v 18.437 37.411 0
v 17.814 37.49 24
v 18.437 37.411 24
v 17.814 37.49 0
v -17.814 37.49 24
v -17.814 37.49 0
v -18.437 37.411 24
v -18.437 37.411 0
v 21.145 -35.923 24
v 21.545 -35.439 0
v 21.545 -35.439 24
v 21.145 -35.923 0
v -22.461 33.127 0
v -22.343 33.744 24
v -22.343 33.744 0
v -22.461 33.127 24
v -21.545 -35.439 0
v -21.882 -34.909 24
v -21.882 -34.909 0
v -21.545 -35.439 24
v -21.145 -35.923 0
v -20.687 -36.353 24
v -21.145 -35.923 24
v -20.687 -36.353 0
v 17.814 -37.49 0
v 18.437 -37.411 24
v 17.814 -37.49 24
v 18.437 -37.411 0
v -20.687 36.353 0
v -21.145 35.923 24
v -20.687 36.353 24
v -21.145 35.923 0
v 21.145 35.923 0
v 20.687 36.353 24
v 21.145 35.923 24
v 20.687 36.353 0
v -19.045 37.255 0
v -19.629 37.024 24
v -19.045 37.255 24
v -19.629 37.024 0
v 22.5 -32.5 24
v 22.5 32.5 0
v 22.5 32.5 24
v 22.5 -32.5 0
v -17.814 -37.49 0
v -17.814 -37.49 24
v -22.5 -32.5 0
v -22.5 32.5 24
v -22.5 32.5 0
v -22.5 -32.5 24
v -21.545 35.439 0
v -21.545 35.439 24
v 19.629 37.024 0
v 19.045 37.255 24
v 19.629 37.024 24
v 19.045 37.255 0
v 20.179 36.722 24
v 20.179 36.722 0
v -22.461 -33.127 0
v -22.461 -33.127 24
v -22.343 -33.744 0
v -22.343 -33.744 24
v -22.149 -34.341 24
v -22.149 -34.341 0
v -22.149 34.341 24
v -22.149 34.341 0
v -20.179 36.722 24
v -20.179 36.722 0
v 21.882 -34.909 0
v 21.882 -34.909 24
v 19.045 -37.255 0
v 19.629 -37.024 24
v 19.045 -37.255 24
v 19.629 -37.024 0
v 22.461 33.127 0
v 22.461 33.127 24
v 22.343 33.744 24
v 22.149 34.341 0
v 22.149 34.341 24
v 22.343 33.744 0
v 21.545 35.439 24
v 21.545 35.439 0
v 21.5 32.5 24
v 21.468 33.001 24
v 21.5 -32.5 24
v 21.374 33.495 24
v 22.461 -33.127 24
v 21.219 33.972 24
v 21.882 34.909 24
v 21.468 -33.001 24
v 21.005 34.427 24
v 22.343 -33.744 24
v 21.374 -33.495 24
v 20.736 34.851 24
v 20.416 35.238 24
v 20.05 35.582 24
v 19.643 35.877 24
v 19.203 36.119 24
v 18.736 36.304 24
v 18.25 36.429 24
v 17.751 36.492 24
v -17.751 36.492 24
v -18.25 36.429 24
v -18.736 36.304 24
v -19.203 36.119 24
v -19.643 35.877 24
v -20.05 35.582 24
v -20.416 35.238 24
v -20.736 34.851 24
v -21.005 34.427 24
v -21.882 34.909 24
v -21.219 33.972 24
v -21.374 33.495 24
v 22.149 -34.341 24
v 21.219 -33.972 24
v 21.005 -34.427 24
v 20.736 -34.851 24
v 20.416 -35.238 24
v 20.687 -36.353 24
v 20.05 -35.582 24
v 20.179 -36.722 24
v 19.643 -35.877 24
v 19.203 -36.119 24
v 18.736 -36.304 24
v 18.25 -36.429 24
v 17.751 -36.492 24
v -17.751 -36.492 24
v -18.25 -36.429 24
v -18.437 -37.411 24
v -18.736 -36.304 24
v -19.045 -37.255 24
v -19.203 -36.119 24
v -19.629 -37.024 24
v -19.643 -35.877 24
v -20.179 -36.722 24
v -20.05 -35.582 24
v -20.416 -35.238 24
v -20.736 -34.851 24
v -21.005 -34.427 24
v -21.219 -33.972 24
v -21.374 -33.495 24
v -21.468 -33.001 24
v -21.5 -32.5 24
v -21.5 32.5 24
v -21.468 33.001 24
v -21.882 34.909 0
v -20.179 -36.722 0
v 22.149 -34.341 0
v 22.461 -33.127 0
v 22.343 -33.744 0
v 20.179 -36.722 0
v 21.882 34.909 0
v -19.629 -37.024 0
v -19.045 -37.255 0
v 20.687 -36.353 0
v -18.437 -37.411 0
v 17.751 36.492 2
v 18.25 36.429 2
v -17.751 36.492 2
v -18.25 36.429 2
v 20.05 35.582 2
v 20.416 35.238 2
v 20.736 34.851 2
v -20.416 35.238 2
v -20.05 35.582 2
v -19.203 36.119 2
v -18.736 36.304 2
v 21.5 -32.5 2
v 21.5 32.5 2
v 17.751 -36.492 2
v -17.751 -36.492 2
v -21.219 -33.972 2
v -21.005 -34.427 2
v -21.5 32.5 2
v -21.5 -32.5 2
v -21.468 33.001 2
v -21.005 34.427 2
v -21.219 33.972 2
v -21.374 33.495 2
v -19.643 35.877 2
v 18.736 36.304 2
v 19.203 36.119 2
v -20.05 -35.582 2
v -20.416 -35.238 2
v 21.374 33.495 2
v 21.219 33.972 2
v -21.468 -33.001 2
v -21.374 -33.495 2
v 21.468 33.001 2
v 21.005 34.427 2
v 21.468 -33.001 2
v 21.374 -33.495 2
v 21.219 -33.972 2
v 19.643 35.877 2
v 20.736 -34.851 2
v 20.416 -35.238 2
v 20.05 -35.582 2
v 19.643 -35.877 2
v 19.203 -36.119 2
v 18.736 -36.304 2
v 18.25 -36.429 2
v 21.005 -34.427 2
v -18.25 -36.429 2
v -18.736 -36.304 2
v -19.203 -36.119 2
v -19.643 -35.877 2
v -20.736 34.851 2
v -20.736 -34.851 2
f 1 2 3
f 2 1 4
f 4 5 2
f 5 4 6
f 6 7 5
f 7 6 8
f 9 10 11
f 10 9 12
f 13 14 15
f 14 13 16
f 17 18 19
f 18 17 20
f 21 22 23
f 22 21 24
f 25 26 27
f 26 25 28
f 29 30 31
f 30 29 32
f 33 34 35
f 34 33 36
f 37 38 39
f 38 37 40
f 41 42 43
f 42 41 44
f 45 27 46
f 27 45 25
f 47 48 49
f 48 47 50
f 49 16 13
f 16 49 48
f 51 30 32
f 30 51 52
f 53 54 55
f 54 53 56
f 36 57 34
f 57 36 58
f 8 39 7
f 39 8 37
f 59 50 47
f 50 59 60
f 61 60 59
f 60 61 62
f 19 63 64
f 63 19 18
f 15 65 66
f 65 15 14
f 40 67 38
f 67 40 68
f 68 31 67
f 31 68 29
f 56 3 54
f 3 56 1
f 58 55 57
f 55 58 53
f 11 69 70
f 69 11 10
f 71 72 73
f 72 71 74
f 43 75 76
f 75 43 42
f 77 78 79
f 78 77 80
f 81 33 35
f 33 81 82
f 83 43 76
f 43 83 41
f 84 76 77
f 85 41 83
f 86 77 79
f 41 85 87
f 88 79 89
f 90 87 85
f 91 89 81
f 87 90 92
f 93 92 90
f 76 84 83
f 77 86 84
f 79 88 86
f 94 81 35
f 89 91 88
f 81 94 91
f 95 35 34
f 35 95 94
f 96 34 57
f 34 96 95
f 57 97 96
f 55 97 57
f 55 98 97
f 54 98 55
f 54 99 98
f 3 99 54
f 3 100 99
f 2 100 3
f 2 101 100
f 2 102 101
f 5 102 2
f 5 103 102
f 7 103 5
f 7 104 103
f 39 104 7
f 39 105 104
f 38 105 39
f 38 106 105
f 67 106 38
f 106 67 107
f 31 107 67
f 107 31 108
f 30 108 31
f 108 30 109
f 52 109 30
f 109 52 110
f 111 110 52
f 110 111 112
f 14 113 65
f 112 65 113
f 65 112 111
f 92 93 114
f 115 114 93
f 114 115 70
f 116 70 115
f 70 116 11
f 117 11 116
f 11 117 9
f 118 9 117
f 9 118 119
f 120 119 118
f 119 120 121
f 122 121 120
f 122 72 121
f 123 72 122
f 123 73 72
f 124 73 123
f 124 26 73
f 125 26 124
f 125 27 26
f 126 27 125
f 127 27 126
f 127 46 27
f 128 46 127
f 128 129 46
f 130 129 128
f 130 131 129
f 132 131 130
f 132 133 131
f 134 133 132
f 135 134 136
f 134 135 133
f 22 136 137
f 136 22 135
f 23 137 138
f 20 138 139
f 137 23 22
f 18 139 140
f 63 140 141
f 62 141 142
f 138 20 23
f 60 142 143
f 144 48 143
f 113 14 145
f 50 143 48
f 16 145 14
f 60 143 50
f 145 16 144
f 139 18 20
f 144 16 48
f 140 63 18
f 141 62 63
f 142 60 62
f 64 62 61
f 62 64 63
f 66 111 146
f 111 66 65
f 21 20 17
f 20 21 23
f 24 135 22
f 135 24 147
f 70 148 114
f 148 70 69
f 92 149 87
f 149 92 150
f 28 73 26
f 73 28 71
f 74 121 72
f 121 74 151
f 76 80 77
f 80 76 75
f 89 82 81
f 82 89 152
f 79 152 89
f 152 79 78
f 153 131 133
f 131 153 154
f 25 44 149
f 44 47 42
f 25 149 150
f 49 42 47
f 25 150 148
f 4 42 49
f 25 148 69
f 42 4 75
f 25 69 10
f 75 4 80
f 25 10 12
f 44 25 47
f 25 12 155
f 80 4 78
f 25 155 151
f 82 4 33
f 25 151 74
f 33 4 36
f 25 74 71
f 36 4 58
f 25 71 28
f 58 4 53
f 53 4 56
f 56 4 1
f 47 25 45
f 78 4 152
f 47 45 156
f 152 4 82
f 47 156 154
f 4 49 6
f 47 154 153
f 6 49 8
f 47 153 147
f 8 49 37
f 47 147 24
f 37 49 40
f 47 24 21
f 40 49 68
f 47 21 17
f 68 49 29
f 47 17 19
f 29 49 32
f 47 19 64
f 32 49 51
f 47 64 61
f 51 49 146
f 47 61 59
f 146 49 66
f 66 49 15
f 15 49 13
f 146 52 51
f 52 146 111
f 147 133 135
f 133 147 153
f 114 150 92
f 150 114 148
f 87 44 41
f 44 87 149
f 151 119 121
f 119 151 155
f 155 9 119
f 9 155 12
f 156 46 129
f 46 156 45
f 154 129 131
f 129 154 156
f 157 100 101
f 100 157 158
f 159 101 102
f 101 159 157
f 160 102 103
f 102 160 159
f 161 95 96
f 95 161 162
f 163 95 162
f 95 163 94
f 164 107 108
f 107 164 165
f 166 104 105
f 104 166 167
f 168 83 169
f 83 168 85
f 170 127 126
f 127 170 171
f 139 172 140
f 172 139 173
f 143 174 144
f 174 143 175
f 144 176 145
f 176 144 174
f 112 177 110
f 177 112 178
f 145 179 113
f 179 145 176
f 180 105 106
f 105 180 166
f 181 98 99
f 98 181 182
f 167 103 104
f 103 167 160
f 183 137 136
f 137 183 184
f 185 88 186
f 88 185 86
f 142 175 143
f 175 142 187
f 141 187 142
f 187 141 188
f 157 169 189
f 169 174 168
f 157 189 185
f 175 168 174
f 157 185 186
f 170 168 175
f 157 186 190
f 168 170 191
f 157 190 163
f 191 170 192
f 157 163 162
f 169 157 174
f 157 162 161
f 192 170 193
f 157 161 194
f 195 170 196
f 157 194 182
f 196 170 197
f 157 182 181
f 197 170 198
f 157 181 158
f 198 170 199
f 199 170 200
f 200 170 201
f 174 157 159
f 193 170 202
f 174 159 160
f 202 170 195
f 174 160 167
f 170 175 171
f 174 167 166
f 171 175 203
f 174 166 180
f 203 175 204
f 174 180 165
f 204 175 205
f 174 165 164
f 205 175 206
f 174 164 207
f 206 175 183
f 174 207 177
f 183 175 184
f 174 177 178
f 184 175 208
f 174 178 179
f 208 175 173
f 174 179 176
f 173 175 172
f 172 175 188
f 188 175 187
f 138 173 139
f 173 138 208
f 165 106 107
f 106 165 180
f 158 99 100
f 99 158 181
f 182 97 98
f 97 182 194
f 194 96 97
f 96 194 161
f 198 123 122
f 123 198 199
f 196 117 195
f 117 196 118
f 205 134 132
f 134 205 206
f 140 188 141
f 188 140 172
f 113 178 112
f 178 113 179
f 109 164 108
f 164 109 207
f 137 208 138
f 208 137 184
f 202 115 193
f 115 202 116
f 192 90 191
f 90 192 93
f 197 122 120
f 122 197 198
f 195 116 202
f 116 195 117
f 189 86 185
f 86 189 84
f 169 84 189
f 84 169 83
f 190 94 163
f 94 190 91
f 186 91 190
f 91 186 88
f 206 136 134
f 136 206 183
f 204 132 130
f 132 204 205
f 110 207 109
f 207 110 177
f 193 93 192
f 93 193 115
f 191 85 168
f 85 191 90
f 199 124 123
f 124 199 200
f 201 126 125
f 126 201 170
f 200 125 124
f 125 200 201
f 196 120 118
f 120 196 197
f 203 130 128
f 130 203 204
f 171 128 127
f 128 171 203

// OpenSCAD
$fn = 50;


difference() {
	union() {
		hull() {
			translate(v = [-17.5000000000, 32.5000000000, 0]) {
				cylinder(h = 24, r = 5);
			}
			translate(v = [17.5000000000, 32.5000000000, 0]) {
				cylinder(h = 24, r = 5);
			}
			translate(v = [-17.5000000000, -32.5000000000, 0]) {
				cylinder(h = 24, r = 5);
			}
			translate(v = [17.5000000000, -32.5000000000, 0]) {
				cylinder(h = 24, r = 5);
			}
		}
	}
	union() {
		translate(v = [0, 0, 2]) {
			hull() {
				translate(v = [-17.5000000000, 32.5000000000, 0]) {
					cylinder(h = 22, r = 4);
				}
				translate(v = [17.5000000000, 32.5000000000, 0]) {
					cylinder(h = 22, r = 4);
				}
				translate(v = [-17.5000000000, -32.5000000000, 0]) {
					cylinder(h = 22, r = 4);
				}
				translate(v = [17.5000000000, -32.5000000000, 0]) {
					cylinder(h = 22, r = 4);
				}
			}
		}
	}
}
